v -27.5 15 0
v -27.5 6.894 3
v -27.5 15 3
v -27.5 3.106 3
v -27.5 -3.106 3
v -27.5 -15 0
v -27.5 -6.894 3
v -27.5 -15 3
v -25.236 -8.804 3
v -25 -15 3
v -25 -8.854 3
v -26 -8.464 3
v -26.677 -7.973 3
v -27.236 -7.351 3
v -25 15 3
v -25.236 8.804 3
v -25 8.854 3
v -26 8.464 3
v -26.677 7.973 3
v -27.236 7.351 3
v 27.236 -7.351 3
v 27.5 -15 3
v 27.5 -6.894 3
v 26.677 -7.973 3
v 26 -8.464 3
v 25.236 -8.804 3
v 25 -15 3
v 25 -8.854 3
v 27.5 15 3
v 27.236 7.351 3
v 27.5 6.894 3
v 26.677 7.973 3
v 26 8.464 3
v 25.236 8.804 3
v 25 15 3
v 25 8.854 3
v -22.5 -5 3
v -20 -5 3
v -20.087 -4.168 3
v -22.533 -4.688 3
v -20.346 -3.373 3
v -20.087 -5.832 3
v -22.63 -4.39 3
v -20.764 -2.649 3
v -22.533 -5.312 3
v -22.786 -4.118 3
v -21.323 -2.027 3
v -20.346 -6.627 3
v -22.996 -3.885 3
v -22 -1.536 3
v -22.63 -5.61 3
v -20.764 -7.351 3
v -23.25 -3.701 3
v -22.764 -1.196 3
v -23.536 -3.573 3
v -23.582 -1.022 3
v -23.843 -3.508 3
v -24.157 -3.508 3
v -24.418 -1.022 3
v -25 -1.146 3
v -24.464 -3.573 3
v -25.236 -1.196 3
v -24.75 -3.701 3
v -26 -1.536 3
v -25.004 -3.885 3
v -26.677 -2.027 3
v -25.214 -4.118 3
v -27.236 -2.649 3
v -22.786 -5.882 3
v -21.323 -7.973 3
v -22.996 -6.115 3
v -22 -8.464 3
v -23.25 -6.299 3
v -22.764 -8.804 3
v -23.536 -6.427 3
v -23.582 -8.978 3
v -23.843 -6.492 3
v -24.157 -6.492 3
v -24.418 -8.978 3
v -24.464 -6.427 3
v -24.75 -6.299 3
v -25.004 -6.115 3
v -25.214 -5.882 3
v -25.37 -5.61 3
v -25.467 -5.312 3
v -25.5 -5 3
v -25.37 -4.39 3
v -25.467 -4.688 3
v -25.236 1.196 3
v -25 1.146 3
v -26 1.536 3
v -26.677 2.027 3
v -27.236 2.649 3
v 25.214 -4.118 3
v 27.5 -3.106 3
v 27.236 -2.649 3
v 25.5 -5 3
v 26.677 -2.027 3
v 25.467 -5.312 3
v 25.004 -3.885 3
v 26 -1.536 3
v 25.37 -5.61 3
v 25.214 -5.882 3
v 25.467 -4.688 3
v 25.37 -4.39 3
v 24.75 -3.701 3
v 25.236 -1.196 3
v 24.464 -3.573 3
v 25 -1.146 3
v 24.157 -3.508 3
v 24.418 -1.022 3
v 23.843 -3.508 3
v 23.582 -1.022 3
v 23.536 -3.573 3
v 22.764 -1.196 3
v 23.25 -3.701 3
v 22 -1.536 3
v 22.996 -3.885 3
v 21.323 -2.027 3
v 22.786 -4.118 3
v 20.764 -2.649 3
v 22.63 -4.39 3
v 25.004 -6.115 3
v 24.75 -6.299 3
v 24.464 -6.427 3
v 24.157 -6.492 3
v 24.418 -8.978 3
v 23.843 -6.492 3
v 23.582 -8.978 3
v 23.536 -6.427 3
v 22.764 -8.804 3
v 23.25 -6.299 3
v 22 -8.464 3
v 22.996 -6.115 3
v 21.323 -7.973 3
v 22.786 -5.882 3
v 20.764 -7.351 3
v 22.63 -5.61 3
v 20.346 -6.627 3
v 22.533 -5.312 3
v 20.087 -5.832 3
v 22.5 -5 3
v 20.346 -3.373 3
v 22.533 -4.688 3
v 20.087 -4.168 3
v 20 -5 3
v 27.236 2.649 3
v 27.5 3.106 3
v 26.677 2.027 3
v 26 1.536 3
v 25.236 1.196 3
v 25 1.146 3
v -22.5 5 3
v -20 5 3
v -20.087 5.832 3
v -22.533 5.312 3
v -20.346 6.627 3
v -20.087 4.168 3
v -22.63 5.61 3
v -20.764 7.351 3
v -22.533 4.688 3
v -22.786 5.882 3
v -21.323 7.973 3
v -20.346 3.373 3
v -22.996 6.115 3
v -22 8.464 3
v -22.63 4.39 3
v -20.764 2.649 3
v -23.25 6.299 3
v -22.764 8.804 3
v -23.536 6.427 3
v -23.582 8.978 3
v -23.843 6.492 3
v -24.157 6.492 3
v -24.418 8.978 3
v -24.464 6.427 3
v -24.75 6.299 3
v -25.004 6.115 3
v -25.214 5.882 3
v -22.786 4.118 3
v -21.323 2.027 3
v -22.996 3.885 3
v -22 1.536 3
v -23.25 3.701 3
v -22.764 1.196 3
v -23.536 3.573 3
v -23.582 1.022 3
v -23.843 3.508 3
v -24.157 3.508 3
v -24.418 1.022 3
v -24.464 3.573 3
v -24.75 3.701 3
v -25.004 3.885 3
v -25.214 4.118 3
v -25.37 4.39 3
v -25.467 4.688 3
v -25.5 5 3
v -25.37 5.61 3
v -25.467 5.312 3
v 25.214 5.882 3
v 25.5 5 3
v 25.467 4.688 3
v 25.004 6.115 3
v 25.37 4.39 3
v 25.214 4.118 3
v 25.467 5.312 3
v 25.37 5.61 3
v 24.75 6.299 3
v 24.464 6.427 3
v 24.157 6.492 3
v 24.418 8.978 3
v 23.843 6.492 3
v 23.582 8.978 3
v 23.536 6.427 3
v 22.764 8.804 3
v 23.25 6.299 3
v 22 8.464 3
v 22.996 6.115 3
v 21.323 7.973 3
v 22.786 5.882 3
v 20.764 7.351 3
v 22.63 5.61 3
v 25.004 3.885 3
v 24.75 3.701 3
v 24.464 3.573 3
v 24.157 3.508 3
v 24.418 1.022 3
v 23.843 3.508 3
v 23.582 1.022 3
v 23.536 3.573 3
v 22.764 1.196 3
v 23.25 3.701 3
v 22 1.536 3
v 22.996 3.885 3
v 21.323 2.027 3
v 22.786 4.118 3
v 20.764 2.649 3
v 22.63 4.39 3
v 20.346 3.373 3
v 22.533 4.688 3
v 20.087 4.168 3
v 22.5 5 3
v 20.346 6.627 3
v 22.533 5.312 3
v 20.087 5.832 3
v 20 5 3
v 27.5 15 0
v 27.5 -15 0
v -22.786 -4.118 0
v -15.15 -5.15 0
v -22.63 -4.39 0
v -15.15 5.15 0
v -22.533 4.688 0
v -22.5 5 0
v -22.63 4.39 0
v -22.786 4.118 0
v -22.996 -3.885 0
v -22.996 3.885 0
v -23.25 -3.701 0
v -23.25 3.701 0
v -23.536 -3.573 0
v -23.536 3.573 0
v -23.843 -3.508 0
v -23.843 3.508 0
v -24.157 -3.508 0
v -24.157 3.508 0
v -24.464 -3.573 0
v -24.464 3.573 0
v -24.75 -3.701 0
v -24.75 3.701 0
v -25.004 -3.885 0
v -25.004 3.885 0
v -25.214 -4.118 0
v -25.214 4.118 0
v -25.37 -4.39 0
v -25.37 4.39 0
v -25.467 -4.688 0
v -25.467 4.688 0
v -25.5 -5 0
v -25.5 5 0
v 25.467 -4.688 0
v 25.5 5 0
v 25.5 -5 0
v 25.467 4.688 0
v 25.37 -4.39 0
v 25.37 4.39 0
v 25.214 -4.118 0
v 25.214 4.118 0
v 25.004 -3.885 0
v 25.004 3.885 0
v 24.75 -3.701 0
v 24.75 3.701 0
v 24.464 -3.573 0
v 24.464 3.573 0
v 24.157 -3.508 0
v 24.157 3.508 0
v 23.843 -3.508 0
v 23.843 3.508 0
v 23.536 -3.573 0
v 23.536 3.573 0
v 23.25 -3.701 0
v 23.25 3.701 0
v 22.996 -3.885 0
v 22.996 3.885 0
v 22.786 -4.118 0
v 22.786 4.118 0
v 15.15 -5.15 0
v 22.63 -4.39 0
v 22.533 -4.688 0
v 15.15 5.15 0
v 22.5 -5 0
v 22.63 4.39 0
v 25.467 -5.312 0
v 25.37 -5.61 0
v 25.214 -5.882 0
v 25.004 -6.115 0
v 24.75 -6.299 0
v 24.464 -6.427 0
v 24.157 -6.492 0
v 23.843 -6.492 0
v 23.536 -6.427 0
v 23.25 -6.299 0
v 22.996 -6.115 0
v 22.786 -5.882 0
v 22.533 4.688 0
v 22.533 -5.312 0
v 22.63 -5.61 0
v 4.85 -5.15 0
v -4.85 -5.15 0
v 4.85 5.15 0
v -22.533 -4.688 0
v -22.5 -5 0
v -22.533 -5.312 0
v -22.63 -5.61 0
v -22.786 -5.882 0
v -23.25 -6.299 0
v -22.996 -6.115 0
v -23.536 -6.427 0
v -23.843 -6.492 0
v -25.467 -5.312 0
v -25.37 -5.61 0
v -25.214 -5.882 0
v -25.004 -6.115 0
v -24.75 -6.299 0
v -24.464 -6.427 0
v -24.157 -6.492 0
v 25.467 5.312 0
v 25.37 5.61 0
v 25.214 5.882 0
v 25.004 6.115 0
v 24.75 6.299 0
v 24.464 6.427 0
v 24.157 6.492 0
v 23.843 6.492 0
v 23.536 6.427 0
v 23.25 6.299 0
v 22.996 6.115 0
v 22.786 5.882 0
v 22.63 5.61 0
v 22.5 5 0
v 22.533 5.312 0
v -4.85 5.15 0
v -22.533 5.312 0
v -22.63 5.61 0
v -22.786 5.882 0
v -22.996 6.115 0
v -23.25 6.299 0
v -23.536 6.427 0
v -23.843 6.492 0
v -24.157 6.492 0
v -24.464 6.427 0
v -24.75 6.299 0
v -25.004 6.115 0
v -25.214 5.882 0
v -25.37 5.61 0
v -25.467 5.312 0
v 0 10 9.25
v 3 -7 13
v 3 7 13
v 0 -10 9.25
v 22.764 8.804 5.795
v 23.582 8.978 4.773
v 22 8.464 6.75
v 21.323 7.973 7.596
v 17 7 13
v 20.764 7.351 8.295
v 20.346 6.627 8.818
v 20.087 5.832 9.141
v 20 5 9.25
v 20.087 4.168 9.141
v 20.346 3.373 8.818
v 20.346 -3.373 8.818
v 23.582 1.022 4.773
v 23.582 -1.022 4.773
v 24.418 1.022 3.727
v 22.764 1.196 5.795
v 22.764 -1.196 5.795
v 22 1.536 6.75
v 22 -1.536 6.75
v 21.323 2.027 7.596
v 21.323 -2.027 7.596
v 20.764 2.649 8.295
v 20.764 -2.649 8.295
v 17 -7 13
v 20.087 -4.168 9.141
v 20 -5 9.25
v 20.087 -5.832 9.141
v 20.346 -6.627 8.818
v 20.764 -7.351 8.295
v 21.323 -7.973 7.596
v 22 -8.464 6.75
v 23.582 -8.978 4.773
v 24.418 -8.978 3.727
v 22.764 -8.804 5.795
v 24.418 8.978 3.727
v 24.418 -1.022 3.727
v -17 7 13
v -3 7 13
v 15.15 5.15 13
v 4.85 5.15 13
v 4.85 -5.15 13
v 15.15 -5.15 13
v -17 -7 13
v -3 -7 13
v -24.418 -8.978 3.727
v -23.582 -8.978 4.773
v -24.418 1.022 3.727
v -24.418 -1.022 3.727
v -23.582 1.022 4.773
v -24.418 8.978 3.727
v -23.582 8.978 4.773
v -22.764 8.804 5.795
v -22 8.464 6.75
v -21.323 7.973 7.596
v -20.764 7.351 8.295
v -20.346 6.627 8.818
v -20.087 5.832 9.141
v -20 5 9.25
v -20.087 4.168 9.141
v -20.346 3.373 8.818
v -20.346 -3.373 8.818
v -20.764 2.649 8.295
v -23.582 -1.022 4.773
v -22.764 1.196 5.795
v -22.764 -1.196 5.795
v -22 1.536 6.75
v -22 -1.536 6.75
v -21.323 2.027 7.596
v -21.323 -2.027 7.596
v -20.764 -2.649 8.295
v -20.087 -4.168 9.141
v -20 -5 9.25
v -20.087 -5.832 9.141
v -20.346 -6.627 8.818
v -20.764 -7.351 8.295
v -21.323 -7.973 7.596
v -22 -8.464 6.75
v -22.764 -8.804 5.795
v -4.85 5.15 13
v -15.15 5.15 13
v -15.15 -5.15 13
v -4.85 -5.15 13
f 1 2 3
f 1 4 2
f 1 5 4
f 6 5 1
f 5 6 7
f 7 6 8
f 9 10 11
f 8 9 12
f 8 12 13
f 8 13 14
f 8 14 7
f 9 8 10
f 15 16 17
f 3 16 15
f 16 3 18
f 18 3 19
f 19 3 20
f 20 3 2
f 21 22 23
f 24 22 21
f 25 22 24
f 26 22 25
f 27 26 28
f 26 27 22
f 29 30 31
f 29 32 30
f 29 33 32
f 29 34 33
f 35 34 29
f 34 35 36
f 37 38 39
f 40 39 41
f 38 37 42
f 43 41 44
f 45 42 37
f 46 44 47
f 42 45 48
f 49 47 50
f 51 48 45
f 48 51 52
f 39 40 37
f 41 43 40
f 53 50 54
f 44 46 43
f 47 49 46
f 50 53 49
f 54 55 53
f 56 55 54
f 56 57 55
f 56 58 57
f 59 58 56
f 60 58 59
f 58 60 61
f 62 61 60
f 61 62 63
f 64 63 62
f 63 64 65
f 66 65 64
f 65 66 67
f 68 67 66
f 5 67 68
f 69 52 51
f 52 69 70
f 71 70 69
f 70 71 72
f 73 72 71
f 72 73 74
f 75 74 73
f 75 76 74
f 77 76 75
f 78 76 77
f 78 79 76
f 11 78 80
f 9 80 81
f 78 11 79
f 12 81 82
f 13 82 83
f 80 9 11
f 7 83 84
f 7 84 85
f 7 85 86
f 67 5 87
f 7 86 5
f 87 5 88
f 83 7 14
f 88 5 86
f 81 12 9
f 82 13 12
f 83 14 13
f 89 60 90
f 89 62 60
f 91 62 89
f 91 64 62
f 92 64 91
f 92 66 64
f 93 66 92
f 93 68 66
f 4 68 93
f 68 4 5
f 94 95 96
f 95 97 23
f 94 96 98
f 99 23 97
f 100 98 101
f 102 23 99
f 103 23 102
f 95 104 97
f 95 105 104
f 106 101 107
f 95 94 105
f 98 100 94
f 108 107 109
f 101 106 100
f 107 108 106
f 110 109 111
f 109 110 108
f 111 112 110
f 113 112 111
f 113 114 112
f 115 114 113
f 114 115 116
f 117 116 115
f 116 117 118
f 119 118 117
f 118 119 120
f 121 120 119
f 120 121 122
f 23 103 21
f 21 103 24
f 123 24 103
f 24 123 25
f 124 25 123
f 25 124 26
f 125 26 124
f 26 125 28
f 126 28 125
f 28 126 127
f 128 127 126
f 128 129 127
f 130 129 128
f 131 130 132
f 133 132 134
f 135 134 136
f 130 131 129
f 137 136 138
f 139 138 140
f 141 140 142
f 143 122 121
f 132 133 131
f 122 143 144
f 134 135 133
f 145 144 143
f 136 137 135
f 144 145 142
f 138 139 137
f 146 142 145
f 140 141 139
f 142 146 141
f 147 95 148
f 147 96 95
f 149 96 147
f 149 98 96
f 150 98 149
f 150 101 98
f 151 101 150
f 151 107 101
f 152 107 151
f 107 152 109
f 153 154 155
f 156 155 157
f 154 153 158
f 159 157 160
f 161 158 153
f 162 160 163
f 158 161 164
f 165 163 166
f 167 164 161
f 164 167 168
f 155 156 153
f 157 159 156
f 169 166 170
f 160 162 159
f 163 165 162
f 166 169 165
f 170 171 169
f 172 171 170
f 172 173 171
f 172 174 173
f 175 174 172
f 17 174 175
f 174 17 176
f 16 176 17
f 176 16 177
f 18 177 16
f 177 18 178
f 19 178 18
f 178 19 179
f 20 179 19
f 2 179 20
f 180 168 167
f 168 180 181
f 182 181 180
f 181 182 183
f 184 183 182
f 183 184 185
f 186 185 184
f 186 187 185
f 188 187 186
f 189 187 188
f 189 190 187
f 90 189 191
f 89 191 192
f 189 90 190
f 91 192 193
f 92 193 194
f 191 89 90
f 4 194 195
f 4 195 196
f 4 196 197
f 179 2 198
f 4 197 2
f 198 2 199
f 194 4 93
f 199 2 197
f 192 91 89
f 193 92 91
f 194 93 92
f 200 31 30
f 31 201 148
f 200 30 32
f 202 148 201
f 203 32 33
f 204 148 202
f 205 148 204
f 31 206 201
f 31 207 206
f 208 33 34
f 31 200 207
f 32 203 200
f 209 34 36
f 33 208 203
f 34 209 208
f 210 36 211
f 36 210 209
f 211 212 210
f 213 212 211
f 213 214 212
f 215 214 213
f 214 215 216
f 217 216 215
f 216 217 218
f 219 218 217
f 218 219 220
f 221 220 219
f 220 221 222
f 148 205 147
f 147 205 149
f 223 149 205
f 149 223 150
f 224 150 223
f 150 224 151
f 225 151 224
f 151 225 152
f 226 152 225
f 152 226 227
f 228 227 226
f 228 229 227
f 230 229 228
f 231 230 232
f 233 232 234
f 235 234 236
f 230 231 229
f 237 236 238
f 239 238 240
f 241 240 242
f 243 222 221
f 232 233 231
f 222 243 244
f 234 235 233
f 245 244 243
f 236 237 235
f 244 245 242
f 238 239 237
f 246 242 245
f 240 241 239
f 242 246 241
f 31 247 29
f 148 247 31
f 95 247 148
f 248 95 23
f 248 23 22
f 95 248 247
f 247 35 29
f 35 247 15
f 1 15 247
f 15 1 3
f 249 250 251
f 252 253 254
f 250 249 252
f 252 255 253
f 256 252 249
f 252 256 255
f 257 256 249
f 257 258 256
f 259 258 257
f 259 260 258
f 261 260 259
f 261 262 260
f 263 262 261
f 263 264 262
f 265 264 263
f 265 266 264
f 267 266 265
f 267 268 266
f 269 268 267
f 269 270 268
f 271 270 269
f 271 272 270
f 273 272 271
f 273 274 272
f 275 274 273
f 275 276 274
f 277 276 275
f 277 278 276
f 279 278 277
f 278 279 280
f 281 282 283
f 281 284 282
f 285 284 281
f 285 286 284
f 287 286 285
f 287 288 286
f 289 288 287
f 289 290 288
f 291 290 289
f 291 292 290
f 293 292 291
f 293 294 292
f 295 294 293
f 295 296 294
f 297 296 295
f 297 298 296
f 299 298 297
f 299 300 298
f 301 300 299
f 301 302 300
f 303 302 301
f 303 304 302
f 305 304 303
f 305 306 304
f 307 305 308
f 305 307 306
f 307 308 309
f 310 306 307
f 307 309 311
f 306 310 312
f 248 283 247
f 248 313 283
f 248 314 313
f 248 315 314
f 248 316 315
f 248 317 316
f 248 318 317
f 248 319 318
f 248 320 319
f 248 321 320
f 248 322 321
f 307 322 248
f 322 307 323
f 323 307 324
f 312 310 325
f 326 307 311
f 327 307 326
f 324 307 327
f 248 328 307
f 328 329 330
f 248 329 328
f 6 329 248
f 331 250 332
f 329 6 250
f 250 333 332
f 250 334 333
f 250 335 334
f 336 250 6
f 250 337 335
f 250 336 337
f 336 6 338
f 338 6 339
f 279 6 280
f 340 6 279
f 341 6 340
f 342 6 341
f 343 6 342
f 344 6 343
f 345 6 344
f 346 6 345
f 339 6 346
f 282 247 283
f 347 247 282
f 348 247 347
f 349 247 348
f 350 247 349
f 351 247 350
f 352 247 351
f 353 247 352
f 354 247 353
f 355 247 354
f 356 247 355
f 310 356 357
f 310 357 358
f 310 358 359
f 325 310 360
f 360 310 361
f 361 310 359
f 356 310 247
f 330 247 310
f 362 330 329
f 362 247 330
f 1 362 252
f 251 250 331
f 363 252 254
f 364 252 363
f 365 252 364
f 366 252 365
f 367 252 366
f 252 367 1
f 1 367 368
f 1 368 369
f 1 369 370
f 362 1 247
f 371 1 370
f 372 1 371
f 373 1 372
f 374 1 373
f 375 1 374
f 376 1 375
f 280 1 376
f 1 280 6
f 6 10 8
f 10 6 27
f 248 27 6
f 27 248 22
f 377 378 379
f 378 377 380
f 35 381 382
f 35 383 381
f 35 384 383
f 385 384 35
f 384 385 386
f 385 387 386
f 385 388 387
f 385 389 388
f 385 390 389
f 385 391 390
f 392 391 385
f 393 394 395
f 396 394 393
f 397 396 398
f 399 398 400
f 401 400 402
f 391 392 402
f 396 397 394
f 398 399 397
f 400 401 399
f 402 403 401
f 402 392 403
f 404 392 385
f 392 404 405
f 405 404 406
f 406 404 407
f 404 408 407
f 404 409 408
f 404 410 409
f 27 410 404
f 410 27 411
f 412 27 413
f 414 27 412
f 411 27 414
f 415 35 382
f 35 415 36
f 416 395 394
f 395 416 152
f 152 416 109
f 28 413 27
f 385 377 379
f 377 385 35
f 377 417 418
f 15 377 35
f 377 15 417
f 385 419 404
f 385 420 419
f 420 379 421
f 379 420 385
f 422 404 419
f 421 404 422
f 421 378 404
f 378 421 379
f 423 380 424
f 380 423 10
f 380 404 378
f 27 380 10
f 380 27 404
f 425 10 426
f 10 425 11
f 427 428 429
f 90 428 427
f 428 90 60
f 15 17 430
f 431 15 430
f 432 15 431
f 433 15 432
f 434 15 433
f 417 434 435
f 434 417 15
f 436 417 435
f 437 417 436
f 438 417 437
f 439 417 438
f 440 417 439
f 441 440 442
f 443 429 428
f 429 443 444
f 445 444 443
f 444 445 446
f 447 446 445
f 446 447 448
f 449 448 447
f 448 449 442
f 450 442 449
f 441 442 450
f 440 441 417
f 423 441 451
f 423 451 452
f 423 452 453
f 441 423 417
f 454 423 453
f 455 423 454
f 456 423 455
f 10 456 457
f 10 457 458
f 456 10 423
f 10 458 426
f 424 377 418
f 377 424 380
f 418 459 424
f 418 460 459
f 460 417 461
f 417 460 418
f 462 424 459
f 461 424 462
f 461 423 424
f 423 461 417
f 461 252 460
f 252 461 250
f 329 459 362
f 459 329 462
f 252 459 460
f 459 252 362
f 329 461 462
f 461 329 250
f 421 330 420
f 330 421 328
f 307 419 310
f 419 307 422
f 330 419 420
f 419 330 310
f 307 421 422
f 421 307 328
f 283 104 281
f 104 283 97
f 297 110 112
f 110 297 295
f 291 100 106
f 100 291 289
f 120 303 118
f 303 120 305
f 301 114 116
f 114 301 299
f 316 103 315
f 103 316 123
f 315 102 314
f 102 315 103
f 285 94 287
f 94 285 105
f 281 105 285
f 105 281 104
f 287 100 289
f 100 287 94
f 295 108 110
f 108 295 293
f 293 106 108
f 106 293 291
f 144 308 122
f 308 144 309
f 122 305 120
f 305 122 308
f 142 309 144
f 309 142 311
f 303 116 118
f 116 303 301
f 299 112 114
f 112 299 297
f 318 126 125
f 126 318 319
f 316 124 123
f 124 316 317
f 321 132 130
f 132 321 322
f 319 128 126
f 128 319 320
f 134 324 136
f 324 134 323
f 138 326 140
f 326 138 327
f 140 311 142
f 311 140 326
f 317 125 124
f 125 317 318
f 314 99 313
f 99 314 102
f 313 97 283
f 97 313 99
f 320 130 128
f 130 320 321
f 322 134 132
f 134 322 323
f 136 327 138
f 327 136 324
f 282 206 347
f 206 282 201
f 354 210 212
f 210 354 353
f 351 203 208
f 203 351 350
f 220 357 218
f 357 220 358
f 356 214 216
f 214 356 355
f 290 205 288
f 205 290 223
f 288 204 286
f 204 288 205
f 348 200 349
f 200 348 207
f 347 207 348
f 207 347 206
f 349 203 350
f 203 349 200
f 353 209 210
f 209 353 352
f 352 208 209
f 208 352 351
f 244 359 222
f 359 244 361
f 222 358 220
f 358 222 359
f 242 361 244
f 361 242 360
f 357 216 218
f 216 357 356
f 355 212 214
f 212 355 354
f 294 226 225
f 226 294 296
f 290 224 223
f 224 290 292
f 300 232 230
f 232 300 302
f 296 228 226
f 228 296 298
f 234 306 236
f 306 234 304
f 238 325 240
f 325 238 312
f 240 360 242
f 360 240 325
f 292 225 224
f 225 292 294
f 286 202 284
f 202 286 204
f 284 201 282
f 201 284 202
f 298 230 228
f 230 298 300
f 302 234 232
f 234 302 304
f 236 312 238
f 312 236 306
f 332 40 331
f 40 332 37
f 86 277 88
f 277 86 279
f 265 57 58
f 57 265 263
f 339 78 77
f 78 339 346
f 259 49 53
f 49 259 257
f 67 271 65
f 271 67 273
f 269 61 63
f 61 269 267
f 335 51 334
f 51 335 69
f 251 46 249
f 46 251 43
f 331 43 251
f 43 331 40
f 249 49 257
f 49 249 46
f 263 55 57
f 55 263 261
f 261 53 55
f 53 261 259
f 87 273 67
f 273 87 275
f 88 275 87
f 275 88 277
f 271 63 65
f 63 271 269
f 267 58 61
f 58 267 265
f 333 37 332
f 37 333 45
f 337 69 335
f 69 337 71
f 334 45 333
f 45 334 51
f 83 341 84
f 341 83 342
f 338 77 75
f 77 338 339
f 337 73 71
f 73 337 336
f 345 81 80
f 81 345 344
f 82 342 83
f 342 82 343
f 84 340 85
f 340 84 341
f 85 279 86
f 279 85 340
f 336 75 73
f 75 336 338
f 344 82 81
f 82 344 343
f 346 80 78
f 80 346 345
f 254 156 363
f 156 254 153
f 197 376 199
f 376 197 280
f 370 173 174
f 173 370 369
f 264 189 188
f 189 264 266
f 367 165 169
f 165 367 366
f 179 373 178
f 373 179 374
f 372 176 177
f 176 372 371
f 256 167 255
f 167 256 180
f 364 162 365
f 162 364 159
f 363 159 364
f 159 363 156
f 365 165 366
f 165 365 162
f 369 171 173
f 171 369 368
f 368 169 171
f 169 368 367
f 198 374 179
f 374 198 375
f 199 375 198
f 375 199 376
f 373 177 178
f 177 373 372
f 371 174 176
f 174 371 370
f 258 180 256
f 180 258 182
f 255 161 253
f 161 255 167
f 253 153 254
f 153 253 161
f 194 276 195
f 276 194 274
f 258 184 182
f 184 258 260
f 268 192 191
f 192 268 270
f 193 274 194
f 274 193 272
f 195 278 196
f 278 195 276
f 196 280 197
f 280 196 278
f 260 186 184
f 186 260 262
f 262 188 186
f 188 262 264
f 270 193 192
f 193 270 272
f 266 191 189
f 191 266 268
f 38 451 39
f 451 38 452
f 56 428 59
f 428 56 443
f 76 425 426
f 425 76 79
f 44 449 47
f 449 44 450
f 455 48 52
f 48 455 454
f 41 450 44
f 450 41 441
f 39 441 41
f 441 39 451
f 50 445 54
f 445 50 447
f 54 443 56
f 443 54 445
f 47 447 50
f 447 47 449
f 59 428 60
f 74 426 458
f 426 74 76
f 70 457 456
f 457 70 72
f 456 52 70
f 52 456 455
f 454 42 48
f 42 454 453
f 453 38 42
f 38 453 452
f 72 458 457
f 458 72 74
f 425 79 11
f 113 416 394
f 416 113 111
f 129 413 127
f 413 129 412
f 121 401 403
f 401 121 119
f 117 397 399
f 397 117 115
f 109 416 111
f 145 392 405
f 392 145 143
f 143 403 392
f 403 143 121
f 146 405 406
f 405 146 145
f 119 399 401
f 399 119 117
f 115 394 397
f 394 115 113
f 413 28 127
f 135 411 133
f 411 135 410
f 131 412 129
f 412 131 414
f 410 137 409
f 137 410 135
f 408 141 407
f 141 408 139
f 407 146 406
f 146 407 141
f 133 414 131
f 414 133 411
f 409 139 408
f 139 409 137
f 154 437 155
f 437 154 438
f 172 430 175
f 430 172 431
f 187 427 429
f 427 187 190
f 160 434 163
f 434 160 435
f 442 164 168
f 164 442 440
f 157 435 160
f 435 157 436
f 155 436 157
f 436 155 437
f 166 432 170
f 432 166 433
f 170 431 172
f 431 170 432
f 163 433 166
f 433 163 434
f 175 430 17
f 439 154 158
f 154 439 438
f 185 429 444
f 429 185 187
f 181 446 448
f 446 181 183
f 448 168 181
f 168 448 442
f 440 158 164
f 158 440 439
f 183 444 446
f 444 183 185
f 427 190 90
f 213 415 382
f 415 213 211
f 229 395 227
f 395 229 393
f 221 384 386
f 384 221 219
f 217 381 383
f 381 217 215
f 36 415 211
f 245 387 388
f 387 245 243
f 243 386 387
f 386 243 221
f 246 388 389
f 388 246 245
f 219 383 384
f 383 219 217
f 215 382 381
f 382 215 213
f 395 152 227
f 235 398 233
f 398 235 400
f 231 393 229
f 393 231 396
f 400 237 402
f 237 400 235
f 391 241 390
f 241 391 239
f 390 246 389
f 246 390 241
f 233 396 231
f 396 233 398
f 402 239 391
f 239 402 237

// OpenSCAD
difference(){
    union(){
        translate([-55/2,-30/2,0])cube([55,30,3]);

        hull(){
            translate([-14/2+10,-14/2,0])cube([14,14,13]);
            translate([-30/2+10,-30/2,0])cube([30,30,3]);
        }

        hull(){
            translate([-14/2-10,-14/2,0])cube([14,14,13]);
            translate([-30/2-10,-30/2,0])cube([30,30,3]);
        }
    }

    translate([-10.3/2-10,-10.3/2,-1])cube([10.3,10.3,25]);
    translate([-10.3/2+10,-10.3/2,-1])cube([10.3,10.3,25]);

    translate([24,-5,-1])cylinder(r=1.5,h=100,$fn=30);
    translate([24,5,-1])cylinder(r=1.5,h=100,$fn=30);

    translate([-24,-5,-1])cylinder(r=1.5,h=100,$fn=30);
    translate([-24,5,-1])cylinder(r=1.5,h=100,$fn=30);
    
    translate([-24,-5,3])cylinder(r=4,h=100,$fn=30);
    translate([+24,-5,3])cylinder(r=4,h=100,$fn=30);
    translate([-24,+5,3])cylinder(r=4,h=100,$fn=30);
    translate([+24,+5,3])cylinder(r=4,h=100,$fn=30);
}
